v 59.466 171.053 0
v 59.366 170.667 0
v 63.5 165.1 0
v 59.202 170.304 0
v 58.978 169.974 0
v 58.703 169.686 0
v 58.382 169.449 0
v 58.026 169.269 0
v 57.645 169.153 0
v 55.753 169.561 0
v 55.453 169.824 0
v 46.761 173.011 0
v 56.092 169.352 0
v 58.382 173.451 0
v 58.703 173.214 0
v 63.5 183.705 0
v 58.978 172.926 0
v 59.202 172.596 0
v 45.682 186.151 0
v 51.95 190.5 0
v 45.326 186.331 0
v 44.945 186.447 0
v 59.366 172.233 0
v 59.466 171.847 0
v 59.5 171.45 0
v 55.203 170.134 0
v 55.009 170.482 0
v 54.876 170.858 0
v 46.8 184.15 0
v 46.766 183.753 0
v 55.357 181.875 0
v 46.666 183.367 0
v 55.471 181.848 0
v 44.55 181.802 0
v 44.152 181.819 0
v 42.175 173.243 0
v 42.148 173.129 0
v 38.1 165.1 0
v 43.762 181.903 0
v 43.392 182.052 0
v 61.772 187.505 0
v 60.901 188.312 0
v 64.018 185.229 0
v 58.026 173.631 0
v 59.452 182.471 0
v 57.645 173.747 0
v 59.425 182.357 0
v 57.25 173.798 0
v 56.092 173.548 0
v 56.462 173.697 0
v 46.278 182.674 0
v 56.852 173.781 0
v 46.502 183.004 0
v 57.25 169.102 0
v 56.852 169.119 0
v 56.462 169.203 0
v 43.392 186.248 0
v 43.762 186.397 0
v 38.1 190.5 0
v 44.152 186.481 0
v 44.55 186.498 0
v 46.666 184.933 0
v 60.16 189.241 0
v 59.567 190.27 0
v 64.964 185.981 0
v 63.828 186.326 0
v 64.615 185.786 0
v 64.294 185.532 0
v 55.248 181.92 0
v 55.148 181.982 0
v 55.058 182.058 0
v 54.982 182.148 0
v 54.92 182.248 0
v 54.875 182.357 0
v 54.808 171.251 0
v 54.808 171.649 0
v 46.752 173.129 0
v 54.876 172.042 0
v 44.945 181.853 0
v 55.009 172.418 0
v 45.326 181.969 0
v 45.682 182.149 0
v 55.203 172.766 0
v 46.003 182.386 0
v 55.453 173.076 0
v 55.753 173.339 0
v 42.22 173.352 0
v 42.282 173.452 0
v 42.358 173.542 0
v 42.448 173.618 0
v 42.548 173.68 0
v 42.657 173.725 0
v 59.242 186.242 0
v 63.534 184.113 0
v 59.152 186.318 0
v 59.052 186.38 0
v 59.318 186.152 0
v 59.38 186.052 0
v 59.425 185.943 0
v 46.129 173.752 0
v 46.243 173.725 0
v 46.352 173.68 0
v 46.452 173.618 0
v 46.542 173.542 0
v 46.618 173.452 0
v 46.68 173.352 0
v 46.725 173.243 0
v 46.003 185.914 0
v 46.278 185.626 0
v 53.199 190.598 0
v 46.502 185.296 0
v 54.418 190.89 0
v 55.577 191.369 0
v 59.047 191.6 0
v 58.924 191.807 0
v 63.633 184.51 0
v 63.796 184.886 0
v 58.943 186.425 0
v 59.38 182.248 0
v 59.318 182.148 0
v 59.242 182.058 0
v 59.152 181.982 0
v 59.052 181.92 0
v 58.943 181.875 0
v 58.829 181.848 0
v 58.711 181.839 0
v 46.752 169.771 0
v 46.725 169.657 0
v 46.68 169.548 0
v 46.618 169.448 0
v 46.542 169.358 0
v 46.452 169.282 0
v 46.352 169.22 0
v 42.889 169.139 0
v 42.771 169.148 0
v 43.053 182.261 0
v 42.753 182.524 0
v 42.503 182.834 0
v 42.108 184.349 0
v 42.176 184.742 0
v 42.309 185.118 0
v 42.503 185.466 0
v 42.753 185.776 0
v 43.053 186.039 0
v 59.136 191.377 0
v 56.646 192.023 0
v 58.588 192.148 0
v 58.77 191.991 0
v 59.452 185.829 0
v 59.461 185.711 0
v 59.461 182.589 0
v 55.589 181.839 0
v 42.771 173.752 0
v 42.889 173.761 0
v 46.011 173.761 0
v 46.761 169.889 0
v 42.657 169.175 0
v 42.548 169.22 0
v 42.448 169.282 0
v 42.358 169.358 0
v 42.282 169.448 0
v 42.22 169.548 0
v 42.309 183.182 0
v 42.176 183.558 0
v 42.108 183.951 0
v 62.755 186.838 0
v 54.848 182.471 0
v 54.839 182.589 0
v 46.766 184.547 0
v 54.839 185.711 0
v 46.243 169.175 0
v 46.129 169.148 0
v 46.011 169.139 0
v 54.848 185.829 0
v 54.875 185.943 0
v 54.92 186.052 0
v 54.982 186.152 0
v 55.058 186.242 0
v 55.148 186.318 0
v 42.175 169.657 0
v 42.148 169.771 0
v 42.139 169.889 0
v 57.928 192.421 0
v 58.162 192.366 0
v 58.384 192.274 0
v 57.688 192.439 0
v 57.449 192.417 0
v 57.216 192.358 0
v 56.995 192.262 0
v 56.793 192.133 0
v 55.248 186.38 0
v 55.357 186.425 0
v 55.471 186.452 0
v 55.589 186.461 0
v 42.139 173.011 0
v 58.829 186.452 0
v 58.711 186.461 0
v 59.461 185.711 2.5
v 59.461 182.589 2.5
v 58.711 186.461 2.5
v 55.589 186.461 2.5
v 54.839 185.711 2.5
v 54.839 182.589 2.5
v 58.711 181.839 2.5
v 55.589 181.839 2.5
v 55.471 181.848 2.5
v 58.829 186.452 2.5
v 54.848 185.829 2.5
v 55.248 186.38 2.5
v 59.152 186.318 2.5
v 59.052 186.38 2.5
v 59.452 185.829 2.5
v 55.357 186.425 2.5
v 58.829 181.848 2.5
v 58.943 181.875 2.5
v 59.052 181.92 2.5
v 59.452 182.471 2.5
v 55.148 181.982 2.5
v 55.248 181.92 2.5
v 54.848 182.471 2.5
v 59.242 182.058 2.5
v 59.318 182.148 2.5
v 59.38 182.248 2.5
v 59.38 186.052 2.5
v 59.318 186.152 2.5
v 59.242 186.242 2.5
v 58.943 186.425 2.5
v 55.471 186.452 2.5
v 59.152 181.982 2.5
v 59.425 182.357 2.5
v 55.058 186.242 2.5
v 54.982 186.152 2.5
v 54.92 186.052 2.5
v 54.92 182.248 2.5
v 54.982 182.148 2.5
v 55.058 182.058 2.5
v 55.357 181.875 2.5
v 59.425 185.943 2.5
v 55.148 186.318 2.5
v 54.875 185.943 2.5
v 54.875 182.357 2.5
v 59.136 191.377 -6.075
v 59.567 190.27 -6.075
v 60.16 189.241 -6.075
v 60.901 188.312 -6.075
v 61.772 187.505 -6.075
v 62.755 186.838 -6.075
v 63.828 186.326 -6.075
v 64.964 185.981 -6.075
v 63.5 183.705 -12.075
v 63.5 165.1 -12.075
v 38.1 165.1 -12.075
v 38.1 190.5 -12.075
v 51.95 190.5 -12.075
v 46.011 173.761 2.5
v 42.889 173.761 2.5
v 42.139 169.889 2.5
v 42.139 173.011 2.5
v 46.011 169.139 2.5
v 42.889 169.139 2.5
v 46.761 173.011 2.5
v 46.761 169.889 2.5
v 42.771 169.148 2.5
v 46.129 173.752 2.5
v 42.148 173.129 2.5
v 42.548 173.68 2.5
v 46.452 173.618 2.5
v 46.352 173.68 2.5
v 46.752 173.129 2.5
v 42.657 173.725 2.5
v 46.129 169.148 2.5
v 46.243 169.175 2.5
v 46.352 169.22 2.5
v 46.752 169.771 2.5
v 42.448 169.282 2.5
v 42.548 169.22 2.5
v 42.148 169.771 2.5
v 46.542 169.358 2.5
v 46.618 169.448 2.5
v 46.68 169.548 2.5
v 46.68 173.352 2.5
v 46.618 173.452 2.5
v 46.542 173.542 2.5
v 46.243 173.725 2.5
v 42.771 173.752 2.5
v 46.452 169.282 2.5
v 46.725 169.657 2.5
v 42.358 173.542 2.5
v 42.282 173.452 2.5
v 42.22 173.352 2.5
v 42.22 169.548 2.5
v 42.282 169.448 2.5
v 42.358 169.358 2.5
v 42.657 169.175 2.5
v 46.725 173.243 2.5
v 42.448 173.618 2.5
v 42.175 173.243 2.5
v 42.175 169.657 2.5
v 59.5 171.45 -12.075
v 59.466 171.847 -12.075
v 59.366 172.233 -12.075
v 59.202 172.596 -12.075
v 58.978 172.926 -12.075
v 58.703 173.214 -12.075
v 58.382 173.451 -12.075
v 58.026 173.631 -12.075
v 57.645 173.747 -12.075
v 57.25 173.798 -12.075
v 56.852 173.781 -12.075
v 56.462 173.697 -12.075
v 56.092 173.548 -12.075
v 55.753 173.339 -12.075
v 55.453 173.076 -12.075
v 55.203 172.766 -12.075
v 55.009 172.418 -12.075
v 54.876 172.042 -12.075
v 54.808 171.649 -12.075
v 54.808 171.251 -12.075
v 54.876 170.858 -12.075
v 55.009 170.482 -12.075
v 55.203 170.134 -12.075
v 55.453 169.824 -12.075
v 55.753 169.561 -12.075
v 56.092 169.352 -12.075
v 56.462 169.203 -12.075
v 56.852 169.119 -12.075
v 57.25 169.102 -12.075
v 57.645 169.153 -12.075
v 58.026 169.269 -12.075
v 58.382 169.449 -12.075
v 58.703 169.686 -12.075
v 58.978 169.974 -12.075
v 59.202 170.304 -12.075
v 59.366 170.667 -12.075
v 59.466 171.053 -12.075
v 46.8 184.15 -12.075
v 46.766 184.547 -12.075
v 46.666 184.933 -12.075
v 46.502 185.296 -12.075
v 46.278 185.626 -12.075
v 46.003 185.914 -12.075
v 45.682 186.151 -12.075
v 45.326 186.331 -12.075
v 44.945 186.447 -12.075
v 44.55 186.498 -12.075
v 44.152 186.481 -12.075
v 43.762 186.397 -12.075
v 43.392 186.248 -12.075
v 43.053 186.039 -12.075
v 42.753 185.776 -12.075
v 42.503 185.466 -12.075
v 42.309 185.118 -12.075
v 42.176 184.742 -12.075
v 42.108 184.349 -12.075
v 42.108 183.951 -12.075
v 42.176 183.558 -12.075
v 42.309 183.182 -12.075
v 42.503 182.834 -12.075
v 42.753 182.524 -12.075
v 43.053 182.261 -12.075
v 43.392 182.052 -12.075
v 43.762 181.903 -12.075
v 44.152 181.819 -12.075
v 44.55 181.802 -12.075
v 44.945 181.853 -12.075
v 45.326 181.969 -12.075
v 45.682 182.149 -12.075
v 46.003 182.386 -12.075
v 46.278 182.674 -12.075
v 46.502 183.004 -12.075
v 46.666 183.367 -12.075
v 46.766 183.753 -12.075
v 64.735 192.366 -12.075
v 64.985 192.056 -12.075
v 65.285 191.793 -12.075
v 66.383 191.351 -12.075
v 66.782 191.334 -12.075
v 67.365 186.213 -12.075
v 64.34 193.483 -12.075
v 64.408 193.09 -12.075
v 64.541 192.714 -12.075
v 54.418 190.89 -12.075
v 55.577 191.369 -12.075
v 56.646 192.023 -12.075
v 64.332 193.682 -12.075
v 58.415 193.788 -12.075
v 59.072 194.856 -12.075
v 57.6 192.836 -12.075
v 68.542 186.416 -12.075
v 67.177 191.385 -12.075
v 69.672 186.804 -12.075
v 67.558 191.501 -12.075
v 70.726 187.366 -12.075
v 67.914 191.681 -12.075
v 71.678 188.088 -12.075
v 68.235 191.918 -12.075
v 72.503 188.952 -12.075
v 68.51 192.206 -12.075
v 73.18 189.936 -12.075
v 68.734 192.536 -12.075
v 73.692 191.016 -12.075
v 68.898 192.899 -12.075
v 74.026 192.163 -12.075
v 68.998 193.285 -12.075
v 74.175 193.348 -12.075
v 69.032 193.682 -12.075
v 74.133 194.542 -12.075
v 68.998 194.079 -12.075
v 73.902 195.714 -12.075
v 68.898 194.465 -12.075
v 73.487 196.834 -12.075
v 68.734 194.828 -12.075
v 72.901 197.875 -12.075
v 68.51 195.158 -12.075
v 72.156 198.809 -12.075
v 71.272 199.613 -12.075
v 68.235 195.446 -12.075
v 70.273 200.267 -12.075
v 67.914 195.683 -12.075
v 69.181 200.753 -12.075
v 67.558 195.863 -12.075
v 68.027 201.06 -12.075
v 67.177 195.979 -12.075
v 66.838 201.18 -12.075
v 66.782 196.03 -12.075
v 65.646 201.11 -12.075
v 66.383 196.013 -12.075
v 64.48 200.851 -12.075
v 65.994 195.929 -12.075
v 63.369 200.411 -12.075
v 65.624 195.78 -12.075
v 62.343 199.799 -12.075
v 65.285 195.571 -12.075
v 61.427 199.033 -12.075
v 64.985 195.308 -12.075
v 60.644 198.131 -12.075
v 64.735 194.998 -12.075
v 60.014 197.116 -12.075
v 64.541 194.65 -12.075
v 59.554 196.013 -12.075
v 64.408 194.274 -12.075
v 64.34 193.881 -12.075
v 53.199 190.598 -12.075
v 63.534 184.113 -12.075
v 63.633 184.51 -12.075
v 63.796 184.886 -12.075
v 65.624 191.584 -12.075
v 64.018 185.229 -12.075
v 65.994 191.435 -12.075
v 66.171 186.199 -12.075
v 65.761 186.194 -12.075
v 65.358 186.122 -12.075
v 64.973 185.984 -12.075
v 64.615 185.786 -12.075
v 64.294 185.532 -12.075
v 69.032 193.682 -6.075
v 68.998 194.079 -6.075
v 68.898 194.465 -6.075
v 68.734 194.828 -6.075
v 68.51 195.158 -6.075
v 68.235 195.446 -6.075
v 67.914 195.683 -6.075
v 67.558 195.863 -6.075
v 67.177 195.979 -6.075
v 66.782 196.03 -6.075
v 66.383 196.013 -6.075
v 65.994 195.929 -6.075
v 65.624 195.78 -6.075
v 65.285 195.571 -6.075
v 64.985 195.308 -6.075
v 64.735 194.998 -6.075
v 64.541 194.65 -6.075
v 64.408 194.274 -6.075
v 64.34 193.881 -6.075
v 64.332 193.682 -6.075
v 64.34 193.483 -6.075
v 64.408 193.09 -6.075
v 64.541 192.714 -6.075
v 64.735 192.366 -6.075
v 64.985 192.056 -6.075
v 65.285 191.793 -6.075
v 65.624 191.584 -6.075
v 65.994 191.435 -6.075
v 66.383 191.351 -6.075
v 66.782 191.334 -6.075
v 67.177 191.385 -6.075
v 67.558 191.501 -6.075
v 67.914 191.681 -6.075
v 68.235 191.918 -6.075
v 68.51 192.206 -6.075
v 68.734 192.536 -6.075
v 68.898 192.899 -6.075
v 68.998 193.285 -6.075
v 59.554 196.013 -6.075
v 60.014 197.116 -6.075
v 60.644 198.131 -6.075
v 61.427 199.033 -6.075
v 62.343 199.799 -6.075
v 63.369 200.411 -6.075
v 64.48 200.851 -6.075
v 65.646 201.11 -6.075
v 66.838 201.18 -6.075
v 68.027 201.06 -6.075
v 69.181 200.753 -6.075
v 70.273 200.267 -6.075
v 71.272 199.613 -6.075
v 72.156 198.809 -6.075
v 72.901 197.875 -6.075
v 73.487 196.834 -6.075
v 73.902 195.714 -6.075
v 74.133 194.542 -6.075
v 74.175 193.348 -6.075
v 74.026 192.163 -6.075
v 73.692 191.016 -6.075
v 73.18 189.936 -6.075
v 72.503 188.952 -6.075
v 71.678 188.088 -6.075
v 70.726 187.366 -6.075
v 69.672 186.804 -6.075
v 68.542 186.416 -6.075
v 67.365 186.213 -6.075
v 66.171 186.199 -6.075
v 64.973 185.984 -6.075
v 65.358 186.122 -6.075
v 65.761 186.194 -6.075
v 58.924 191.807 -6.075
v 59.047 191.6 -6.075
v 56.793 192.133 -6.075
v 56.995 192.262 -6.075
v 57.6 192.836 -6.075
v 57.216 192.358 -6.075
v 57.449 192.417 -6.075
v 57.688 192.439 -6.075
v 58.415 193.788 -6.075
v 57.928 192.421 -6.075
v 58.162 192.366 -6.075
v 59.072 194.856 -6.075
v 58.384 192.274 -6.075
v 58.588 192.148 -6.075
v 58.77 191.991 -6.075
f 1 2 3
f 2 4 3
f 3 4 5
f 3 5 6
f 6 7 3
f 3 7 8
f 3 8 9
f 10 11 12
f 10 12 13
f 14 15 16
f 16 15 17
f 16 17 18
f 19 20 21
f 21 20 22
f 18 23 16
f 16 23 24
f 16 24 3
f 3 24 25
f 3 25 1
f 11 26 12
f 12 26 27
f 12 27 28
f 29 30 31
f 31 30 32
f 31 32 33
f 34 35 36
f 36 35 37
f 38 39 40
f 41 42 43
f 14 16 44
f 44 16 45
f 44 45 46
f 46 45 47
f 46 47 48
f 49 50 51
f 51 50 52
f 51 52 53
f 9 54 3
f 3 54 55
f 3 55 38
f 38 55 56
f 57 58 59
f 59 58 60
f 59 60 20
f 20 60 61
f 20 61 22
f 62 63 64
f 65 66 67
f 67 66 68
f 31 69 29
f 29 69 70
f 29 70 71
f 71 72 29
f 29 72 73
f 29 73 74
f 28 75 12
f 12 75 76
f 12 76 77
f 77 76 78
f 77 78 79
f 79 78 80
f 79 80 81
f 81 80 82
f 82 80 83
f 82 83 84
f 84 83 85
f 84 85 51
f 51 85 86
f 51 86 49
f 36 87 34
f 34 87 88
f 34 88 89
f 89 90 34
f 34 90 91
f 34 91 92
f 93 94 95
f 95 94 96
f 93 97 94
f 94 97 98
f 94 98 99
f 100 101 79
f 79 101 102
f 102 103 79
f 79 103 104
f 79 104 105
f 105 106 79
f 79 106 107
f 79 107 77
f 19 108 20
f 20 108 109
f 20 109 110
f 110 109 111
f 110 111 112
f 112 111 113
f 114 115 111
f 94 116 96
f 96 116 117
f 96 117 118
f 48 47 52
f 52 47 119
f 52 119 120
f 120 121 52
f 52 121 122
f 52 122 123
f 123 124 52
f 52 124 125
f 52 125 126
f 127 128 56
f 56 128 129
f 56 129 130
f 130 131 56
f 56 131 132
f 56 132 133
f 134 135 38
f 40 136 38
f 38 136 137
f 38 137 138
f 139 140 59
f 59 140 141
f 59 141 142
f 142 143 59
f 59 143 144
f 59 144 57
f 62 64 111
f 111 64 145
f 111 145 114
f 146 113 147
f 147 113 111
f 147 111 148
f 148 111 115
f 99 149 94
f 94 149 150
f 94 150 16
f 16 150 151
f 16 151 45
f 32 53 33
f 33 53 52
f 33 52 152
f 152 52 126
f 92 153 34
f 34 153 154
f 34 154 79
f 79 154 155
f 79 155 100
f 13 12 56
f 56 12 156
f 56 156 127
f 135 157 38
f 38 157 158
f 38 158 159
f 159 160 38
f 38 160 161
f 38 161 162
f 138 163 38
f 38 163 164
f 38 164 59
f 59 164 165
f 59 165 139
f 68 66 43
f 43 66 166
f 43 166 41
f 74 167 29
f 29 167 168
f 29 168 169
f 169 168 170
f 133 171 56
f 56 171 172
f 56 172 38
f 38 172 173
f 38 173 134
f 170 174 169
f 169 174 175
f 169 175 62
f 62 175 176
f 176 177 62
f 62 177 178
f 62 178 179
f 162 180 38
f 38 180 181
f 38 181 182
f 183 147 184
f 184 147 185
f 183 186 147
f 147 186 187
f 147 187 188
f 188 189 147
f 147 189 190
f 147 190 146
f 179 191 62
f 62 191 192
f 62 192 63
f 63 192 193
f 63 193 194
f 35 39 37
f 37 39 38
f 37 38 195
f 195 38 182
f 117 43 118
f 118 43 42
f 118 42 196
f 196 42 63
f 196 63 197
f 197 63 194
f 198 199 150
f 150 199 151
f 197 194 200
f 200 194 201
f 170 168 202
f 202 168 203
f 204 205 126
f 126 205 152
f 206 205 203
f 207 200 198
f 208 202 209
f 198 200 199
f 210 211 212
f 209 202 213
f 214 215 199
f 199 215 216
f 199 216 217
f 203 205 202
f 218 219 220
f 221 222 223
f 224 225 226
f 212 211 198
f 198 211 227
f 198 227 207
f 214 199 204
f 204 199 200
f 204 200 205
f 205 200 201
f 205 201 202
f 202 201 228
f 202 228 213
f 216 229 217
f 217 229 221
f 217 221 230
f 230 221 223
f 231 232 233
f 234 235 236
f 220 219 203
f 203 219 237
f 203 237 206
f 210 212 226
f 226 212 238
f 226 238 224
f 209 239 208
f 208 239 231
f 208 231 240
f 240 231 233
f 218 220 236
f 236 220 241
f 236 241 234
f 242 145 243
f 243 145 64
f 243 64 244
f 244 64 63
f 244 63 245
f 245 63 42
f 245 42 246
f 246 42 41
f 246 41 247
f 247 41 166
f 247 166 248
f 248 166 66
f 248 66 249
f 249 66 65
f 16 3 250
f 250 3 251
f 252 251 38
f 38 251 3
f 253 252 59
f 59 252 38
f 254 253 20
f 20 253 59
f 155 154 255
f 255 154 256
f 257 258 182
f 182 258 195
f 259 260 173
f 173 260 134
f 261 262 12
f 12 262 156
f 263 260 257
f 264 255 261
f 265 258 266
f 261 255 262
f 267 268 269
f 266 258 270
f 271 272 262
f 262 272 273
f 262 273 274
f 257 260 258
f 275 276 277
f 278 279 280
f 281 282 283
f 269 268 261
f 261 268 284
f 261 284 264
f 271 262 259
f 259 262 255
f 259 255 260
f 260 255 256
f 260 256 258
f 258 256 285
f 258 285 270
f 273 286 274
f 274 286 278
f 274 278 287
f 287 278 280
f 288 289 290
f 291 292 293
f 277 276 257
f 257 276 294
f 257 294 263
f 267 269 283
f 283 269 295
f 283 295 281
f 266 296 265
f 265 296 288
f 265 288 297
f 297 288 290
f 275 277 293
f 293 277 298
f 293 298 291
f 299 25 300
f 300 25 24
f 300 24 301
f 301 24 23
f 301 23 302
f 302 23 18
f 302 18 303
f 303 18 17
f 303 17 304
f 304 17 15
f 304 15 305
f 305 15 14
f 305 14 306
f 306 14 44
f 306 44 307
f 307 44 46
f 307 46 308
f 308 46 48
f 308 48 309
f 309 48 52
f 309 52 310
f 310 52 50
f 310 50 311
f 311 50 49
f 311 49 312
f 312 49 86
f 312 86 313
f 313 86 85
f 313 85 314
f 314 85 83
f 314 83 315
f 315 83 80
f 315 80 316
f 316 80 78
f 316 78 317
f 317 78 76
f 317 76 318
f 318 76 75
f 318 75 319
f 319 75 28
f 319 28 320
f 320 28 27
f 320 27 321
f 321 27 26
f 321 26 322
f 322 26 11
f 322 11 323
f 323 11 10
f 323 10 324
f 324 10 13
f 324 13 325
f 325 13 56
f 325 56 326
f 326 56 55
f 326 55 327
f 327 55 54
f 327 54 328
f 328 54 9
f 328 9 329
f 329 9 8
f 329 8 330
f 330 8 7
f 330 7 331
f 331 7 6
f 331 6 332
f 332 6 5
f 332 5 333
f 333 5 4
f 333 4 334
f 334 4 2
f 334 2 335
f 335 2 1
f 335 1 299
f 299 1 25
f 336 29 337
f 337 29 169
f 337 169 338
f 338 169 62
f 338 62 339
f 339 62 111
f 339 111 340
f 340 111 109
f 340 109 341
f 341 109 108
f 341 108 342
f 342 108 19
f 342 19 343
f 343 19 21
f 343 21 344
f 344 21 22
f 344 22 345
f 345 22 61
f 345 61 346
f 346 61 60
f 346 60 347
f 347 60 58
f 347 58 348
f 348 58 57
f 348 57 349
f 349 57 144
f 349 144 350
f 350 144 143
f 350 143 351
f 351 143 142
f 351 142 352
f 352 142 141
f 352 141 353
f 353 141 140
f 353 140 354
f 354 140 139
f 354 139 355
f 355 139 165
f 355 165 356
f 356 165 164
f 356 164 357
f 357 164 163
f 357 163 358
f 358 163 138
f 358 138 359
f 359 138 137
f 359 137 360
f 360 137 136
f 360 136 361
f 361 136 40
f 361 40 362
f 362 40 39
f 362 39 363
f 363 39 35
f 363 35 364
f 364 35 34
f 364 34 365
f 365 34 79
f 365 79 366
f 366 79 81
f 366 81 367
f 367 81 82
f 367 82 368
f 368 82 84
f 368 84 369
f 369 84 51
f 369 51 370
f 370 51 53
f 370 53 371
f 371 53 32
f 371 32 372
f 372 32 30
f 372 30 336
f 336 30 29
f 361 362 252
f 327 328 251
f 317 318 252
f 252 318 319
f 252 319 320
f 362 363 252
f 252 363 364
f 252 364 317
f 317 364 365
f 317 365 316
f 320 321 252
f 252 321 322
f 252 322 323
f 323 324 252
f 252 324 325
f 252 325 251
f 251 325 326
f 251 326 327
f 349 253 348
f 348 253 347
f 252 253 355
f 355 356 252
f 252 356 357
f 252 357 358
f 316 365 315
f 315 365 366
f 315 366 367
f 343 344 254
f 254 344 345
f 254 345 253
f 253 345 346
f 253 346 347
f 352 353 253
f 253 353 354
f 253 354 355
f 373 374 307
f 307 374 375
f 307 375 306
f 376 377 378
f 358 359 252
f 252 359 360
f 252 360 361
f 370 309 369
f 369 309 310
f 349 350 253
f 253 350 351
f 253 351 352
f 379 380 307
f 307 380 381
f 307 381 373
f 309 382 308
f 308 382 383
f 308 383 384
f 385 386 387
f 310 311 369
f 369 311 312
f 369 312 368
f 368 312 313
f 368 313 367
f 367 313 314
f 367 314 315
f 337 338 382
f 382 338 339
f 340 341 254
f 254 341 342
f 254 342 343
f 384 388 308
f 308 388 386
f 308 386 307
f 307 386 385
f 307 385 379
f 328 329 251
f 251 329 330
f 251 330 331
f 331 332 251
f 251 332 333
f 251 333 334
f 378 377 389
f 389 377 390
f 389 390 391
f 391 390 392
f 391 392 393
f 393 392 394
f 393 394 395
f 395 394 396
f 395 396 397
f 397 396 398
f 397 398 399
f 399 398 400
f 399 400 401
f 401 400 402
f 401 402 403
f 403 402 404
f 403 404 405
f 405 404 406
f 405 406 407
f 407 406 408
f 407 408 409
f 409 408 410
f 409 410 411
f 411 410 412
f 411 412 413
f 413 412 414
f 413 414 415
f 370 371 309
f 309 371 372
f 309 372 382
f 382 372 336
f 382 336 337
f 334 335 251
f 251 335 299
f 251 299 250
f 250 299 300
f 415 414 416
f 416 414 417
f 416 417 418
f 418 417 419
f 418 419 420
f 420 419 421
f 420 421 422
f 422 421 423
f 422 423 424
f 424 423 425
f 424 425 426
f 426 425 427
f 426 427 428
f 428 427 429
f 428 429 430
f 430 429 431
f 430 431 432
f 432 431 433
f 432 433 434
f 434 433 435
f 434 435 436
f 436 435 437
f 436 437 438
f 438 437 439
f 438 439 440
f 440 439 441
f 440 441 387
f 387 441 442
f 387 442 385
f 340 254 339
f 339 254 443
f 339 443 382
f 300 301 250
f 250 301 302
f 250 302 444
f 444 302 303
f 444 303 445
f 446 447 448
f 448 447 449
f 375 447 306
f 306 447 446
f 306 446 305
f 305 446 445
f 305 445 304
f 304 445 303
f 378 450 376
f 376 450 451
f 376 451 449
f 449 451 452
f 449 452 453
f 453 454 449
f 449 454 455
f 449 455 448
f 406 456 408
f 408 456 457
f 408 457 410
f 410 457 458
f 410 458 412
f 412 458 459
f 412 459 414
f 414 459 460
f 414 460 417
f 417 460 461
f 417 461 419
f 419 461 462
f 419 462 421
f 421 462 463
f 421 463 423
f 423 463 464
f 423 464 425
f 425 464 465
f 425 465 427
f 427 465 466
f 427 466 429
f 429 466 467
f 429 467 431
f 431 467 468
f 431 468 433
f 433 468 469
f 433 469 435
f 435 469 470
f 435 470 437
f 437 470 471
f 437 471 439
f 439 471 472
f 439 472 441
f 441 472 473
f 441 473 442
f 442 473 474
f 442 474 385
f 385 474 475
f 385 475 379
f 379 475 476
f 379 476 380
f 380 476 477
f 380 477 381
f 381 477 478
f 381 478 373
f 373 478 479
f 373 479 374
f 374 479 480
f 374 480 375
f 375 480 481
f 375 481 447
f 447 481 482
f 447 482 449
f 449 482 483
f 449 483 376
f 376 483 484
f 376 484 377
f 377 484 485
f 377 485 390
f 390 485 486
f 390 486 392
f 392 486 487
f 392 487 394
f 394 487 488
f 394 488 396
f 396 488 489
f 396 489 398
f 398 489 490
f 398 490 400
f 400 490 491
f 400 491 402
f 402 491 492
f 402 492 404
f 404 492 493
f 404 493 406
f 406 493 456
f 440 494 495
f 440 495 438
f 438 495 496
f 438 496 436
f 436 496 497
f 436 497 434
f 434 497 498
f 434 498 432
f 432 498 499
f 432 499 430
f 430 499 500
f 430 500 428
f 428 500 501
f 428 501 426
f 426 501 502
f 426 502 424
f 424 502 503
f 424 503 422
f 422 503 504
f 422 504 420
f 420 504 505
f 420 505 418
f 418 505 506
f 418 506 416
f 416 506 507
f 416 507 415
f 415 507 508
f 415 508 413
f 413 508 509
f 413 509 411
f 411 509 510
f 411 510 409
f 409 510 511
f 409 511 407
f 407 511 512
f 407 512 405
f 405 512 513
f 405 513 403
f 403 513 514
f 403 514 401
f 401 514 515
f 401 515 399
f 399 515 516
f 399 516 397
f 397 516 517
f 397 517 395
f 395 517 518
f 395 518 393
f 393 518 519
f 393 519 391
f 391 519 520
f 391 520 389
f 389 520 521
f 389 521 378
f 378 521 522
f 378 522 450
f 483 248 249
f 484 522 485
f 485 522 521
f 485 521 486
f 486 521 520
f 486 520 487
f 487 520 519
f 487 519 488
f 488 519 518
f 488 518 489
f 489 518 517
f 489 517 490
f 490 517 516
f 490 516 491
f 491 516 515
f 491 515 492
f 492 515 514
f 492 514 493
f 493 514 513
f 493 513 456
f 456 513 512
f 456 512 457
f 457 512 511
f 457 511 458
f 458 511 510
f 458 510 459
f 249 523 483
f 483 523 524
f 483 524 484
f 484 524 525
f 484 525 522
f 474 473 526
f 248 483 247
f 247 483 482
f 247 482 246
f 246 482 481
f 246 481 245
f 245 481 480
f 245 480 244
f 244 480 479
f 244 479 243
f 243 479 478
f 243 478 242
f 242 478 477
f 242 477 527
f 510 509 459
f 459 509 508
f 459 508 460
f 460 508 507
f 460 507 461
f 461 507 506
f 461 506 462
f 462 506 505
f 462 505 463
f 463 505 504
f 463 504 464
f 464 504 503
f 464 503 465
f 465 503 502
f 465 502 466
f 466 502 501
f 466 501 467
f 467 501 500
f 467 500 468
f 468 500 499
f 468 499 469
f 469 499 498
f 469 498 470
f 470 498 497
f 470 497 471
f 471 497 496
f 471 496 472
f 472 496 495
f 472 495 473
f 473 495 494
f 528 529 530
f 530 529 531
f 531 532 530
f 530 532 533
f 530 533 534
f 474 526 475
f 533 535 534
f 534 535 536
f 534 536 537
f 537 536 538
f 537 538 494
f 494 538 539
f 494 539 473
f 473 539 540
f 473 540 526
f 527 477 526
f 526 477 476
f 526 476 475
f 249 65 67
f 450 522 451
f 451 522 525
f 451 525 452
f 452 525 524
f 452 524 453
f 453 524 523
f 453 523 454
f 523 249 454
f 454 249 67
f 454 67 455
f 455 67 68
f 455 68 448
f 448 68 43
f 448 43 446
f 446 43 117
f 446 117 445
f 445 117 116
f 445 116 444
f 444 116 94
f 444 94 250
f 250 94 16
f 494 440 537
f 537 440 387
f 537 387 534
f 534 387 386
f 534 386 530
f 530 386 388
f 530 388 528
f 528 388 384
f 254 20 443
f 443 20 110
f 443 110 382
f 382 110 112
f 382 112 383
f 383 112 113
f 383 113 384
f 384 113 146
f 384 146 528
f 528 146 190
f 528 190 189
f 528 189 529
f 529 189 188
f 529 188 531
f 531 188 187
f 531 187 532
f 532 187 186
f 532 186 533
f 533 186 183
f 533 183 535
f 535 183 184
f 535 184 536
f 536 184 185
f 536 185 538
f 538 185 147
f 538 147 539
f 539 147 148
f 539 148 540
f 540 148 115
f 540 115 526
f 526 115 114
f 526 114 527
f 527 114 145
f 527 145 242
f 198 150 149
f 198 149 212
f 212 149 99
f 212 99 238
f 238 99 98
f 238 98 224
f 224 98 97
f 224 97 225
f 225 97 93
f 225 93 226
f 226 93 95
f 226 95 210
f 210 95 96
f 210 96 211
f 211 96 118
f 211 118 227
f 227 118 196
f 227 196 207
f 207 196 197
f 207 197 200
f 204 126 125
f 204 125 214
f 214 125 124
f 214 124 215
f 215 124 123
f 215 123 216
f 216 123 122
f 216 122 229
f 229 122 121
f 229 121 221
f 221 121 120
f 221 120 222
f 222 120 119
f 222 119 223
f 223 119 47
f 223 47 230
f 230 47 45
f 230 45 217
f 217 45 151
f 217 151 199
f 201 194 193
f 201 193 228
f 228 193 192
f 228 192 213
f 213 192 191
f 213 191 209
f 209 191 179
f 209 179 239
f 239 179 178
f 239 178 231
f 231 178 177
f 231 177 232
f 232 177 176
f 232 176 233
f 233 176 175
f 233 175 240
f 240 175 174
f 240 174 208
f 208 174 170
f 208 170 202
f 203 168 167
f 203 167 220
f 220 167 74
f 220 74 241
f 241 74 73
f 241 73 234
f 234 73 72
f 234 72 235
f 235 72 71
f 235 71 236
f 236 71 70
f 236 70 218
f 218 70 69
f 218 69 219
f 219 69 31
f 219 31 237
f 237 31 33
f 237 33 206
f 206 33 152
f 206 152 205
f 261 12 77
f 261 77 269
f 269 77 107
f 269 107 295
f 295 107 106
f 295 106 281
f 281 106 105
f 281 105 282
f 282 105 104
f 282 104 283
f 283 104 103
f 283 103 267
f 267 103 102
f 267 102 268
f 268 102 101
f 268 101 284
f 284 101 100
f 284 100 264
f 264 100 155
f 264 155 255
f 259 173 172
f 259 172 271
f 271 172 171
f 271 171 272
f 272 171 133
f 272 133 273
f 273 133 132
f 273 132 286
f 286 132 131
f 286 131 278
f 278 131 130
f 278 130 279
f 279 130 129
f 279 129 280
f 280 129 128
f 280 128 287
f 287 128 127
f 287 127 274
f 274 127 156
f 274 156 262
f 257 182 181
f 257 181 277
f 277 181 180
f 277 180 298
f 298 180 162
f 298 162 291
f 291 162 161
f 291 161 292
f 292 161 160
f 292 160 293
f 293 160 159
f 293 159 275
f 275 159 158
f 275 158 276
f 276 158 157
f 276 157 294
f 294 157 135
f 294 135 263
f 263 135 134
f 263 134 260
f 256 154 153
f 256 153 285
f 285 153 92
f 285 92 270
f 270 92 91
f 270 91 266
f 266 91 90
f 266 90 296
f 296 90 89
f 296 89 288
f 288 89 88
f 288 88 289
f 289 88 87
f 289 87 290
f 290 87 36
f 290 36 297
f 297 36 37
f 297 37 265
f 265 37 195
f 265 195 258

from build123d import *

# Parameters (mm, degrees)
SKETCH2_R             = 2.35
BOSS_EXTRUDE1_DEPTH   = 2.5
BOSS_EXTRUDE1_2_DEPTH = 2.5
SKETCH2_W             = 4.6228
SKETCH2_H             = 4.6228
BOSS_EXTRUDE1_3_DEPTH = 2.5
BOSS_EXTRUDE1_4_DEPTH = 2.5
BOSS_EXTRUDE2_DEPTH   = 6.075
SKETCH6_R             = 2.35
CUT_EXTRUDE1_DEPTH    = 201.98763799
SKETCH4_R             = 7.5
SKETCH4_R_2           = 2.35
BOSS_EXTRUDE4_DEPTH   = 6
FILLET2_R             = 2.5
FILLET3_R             = 8
SKETCH7_R             = 2.35
CUT_EXTRUDE2_DEPTH    = 215.594236042
FILLET4_R             = 1.5
FILLET5_R             = 0.75


with BuildPart() as part:
    # Sketch2 → Boss-Extrude1 (new body)
    with BuildSketch(Plane.XY):
        with Locations((44.45, 184.15)):
            Circle(SKETCH2_R)
    extrude(amount=BOSS_EXTRUDE1_DEPTH)


with BuildPart() as body_2:
    # Sketch2 → Boss-Extrude1 2 (new body)
    with BuildSketch(Plane.XY):
        with Locations((57.15, 171.45)):
            Circle(SKETCH2_R)
    extrude(amount=BOSS_EXTRUDE1_2_DEPTH)


with BuildPart() as body_3:
    # Sketch2 → Boss-Extrude1 3 (new body)
    with BuildSketch(Plane.XY):
        with Locations((57.15, 184.15)):
            Rectangle(SKETCH2_W, SKETCH2_H)
    extrude(amount=BOSS_EXTRUDE1_3_DEPTH)



with BuildPart() as body_4:
    # Sketch2 → Boss-Extrude1 4 (new body)
    with BuildSketch(Plane.XY):
        with Locations((44.45, 171.45)):
            Rectangle(SKETCH2_W, SKETCH2_H)
    extrude(amount=BOSS_EXTRUDE1_4_DEPTH)


with BuildPart() as body_3_1:
    add(body_3.part)

    add(body_4.part)  # Boss-Extrude2 merges body 4
    # Sketch3 → Boss-Extrude2 (add)
    with BuildSketch(Plane.XY):
        with BuildLine():
            Line((63.5, 186.4614), (63.5, 165.1))
            Line((63.5, 165.1), (38.1, 165.1))
            Line((38.1, 165.1), (38.1, 190.5))
            Line((38.1, 190.5), (59.4614, 190.5))
            ThreePointArc((59.4614, 190.5), (61.102474131, 188.102474131), (63.5, 186.4614))
        make_face()
    extrude(amount=-BOSS_EXTRUDE2_DEPTH)


with BuildPart() as cut_extrude1_tool:
    # Sketch6 → Cut-Extrude1 (new, through all)
    with BuildSketch(Plane.XY.offset(2.5)):
        with Locations((44.45, 184.15)):
            Circle(SKETCH6_R)
        with Locations((57.15, 171.45)):
            Circle(SKETCH6_R)
    extrude(amount=-CUT_EXTRUDE1_DEPTH)


with BuildPart() as part_1:
    add(part.part)

    # Cut-Extrude1: cut by cut_extrude1_tool
    add(cut_extrude1_tool.part, mode=Mode.SUBTRACT)


with BuildPart() as body_2_1:
    add(body_2.part)

    # Cut-Extrude1: cut by cut_extrude1_tool
    add(cut_extrude1_tool.part, mode=Mode.SUBTRACT)


with BuildPart() as body_3_2:
    add(body_3_1.part)

    # Cut-Extrude1: cut by cut_extrude1_tool
    add(cut_extrude1_tool.part, mode=Mode.SUBTRACT)

    # Sketch4 → Boss-Extrude4 (add)
    # profile 1 of 3: a face of its own
    with BuildSketch(Plane(origin=(0, 0, -6.075), x_dir=(-1, 0, 0), z_dir=(0, 0, -1))):
        with Locations((-66.681980515, 193.681980515)):
            Circle(SKETCH4_R)
        with Locations((-66.681980515, 193.681980515)):
            Circle(SKETCH4_R_2, mode=Mode.SUBTRACT)
    # profile 2 of 3: a face of its own
    with BuildSketch(Plane(origin=(0, 0, -6.075), x_dir=(-1, 0, 0), z_dir=(0, 0, -1))):
        with BuildLine():
            Line((-38.1, 190.5), (-59.4614, 190.5))
            ThreePointArc((-59.4614, 190.5), (-61.102474131, 188.102474131), (-63.5, 186.4614))
            Line((-63.5, 186.4614), (-63.5, 165.1))
            Line((-63.5, 165.1), (-38.1, 165.1))
            Line((-38.1, 165.1), (-38.1, 190.5))
        make_face()
    # profile 3 of 3: a face of its own
    with BuildSketch(Plane(origin=(0, 0, -6.075), x_dir=(-1, 0, 0), z_dir=(0, 0, -1))):
        with BuildLine():
            ThreePointArc((-63.5, 186.4614), (-61.102474131, 188.102474131), (-59.4614, 190.5))
            Line((-59.4614, 190.5), (-59.890441662, 190.5))
            ThreePointArc((-59.890441662, 190.5), (-61.378679656, 188.378679656), (-63.5, 186.890441662))
            Line((-63.5, 186.890441662), (-63.5, 186.4614))
        make_face()
    extrude(amount=BOSS_EXTRUDE4_DEPTH)

    # Fillet2
    fillet2_edges = [body_3_2.edges().sort_by_distance(p)[0] for p in [
        (63.5, 186.890441662, -9.075),
    ]]
    fillet(fillet2_edges, radius=FILLET2_R)

    # Fillet3
    # the kernel refuses this fillet: 8 mm, written as the material it adds along each edge
    with BuildSketch(Plane(origin=(59.890441662, 190.5, 13.776565592), x_dir=(-1, 0, 0), z_dir=(0, 0, -1))) as fillet3_piece_1_section:
        with BuildLine():
            CenterArc((7.940626237, 8), FILLET3_R, 198.10985807, 71.89014193)
            ThreePointArc((0.336928126, 5.513280266), (0.694495171, 2.724493268), (0, 0))
            Line((0, 0), (7.940626237, 0))
        make_face()
    fillet3_piece_1 = extrude(amount=25.851565592, mode=Mode.PRIVATE)
    fillet3_piece_1 = fillet3_piece_1 - Plane(origin=(66.681980515, 193.681980515, -3.0375), x_dir=(-0.9150847933660875, -0.40326147962599274, 0), z_dir=(0, 0, 1)) * Cylinder(7.8906136, 84, mode=Mode.PRIVATE)
    fillet3_piece_1 = split(fillet3_piece_1, bisect_by=Plane(origin=(57.125105601, 191.419685935, 0), z_dir=(0, 0, -1)), keep=Keep.TOP, mode=Mode.PRIVATE)
    fillet3_piece_1 = split(fillet3_piece_1, bisect_by=Plane(origin=(57.125105601, 191.419685935, -6.075), z_dir=(0, 0, 1)), keep=Keep.TOP, mode=Mode.PRIVATE)
    add(fillet3_piece_1)
    with BuildSketch(Plane(origin=(59.890441662, 190.5, -6.075), x_dir=(-1, 0, 0), z_dir=(0, 0, -1))) as fillet3_piece_2_section:
        with BuildLine():
            CenterArc((7.940626237, 8), FILLET3_R, 198.10985807, 71.89014193)
            ThreePointArc((0.336928126, 5.513280266), (0.694495171, 2.724493268), (0, 0))
            Line((0, 0), (7.940626237, 0))
        make_face()
    fillet3_piece_2 = extrude(amount=6, mode=Mode.PRIVATE)
    fillet3_piece_2 = fillet3_piece_2 - Plane(origin=(66.681980515, 193.681980515, -9.075), x_dir=(-0.9150847933660875, -0.40326147962599274, 0), z_dir=(0, 0, 1)) * Cylinder(7.8906136, 44, mode=Mode.PRIVATE)
    add(fillet3_piece_2)
    with BuildSketch(Plane(origin=(59.890441662, 190.5, -6.075), x_dir=(-1, 0, 0), z_dir=(0, 0, -1))) as fillet3_piece_3_section:
        with BuildLine():
            CenterArc((7.940626237, 8), FILLET3_R, 198.10985807, 71.89014193)
            ThreePointArc((0.336928126, 5.513280266), (0.694495171, 2.724493268), (0, 0))
            Line((0, 0), (7.940626237, 0))
        make_face()
    fillet3_piece_3 = extrude(amount=6, mode=Mode.PRIVATE)
    fillet3_piece_3 = fillet3_piece_3 & Plane(origin=(66.681980515, 193.681980515, -9.075), x_dir=(-0.9150847933660875, -0.40326147962599274, 0), z_dir=(0, 0, 1)) * Cylinder(7.8906136, 44, mode=Mode.PRIVATE)
    add(fillet3_piece_3)

    # Sketch7 → Cut-Extrude2 (cut, through all)
    with BuildSketch(Plane.XY.offset(-6.075)):
        with Locations((44.45, 184.15)):
            Circle(SKETCH7_R)
        with Locations((57.15, 171.45)):
            Circle(SKETCH7_R)
    extrude(amount=-CUT_EXTRUDE2_DEPTH, mode=Mode.SUBTRACT)

    # Fillet4
    fillet4_edges = [body_3_2.edges().sort_by_distance(p)[0] for p in [
        (58.824977937, 194.409506089, -3.0375),
    ]]
    fillet(fillet4_edges, radius=FILLET4_R)

    # Fillet5
    fillet5_edges = [body_3_2.edges().sort_by_distance(p)[0] for p in [
        (46.7614, 173.7614, 1.25),
        (42.1386, 173.7614, 1.25),
        (42.1386, 169.1386, 1.25),
        (46.7614, 169.1386, 1.25),
        (59.4614, 181.8386, 1.25),
        (54.8386, 181.8386, 1.25),
        (54.8386, 186.4614, 1.25),
        (59.4614, 186.4614, 1.25),
    ]]
    fillet(fillet5_edges, radius=FILLET5_R)


solid = body_3_2.part
